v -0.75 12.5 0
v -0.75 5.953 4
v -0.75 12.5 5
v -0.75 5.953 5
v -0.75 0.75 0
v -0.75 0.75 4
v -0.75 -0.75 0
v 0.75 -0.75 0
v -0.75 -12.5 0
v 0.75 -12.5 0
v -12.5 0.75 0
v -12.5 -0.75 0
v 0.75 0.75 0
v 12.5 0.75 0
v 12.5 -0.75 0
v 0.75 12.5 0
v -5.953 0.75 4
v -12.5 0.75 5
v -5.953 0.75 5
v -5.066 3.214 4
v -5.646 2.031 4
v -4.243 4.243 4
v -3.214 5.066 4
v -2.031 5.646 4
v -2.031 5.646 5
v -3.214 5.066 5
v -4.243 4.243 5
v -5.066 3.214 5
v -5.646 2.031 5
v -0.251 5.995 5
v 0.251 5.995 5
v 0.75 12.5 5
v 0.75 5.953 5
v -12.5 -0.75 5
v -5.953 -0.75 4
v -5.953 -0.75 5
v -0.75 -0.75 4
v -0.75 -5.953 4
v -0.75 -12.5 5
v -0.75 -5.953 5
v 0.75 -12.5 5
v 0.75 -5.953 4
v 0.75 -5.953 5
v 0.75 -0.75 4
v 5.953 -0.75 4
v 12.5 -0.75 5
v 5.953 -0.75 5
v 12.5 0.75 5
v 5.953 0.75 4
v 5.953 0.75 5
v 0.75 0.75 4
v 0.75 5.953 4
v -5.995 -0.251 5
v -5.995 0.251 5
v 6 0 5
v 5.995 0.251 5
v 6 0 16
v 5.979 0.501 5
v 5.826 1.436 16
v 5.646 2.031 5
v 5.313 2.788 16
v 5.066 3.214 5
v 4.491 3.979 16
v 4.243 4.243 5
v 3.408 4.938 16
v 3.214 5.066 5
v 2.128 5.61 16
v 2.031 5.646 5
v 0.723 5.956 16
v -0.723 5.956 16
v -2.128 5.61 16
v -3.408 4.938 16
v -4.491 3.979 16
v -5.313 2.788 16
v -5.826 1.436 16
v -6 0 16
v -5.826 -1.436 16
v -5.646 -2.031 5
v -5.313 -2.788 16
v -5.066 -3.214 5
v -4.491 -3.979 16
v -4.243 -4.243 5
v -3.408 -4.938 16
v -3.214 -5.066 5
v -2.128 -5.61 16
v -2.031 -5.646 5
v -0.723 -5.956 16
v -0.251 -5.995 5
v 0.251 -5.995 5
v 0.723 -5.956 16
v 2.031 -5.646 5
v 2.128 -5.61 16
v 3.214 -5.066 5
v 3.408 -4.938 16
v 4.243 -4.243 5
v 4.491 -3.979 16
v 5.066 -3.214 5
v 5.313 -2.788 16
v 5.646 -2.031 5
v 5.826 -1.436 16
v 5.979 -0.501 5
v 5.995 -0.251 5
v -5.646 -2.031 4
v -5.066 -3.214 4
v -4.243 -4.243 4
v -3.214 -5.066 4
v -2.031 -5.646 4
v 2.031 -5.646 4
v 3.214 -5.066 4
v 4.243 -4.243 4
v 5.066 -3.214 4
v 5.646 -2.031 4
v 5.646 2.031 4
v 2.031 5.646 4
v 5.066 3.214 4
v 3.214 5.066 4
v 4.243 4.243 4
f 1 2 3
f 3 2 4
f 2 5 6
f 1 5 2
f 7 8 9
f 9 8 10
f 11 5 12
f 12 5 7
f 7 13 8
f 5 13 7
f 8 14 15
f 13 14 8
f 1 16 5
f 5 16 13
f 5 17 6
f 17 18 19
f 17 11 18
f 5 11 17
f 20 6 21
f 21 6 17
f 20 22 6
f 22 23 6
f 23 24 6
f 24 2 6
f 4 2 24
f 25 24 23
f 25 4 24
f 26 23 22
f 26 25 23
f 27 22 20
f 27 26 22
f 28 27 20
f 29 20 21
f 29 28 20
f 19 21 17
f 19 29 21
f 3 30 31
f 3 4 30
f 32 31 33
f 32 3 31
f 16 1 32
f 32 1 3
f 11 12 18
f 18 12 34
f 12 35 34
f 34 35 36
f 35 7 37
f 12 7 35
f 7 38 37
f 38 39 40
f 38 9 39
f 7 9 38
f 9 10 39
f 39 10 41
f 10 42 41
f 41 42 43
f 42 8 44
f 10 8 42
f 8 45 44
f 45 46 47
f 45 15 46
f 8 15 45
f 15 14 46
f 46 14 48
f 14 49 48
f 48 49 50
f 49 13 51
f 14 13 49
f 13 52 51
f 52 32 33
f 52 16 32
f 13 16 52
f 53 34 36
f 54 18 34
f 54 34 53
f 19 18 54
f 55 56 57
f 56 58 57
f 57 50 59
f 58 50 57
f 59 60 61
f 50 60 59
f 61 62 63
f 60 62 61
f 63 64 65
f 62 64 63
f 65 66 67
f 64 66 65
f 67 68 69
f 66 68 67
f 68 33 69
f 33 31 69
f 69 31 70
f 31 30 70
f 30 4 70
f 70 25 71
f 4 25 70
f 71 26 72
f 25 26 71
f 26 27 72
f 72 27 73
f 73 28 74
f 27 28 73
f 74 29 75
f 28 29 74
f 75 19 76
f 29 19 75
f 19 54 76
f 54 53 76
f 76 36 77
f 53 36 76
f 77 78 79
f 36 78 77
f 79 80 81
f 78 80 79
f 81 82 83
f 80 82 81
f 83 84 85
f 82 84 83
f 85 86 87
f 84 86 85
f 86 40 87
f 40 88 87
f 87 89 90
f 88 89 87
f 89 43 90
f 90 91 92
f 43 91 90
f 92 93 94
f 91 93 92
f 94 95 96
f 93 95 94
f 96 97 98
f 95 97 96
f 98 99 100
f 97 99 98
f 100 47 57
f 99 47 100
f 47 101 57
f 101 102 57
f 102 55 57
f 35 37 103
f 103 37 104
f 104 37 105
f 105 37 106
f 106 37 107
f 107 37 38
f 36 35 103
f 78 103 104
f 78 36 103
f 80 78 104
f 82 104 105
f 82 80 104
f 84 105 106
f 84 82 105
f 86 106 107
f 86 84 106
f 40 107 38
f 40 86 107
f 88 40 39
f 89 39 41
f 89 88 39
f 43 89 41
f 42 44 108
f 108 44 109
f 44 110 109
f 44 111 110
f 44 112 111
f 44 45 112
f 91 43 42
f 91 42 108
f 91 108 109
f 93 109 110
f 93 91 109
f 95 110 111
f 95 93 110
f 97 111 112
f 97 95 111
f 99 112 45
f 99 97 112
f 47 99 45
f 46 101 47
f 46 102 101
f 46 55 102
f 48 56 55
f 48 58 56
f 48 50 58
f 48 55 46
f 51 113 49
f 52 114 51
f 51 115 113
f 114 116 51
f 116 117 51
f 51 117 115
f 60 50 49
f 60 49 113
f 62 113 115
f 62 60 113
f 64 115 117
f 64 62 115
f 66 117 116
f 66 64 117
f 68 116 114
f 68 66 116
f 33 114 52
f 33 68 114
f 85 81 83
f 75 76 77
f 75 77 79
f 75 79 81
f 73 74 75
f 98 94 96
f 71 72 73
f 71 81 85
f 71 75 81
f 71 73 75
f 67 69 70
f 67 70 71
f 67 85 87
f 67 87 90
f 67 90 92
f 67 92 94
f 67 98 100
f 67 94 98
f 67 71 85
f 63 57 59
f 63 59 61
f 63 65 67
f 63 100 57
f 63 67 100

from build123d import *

# Parameters (mm, degrees)
PAD_DEPTH    = 5
SKETCH001_R  = 6
PAD001_DEPTH = 1
SKETCH002_R  = 6
PAD002_DEPTH = 11


with BuildPart() as part:
    # Sketch → Pad (new body)
    with BuildSketch(Plane.XY):
        Polygon((-0.75, 12.5), (-0.75, 0.75), (-12.5, 0.75), (-12.5, -0.75), (-0.75, -0.75), (-0.75, -12.5), (0.75, -12.5), (0.75, -0.75), (12.5, -0.75), (12.5, 0.75), (0.75, 0.75), (0.75, 12.5), align=None)
    extrude(amount=PAD_DEPTH)

    # Sketch001 (on Face14 of Pad) → Pad001 (join)
    with BuildSketch(Plane.XY.offset(5)):
        Circle(SKETCH001_R)
    extrude(amount=-PAD001_DEPTH)

    # Sketch002 (on Face19 of Pad001) → Pad002 (join)
    with BuildSketch(Plane.XY.offset(5)):
        Circle(SKETCH002_R)
    extrude(amount=PAD002_DEPTH)


solid = part.part
